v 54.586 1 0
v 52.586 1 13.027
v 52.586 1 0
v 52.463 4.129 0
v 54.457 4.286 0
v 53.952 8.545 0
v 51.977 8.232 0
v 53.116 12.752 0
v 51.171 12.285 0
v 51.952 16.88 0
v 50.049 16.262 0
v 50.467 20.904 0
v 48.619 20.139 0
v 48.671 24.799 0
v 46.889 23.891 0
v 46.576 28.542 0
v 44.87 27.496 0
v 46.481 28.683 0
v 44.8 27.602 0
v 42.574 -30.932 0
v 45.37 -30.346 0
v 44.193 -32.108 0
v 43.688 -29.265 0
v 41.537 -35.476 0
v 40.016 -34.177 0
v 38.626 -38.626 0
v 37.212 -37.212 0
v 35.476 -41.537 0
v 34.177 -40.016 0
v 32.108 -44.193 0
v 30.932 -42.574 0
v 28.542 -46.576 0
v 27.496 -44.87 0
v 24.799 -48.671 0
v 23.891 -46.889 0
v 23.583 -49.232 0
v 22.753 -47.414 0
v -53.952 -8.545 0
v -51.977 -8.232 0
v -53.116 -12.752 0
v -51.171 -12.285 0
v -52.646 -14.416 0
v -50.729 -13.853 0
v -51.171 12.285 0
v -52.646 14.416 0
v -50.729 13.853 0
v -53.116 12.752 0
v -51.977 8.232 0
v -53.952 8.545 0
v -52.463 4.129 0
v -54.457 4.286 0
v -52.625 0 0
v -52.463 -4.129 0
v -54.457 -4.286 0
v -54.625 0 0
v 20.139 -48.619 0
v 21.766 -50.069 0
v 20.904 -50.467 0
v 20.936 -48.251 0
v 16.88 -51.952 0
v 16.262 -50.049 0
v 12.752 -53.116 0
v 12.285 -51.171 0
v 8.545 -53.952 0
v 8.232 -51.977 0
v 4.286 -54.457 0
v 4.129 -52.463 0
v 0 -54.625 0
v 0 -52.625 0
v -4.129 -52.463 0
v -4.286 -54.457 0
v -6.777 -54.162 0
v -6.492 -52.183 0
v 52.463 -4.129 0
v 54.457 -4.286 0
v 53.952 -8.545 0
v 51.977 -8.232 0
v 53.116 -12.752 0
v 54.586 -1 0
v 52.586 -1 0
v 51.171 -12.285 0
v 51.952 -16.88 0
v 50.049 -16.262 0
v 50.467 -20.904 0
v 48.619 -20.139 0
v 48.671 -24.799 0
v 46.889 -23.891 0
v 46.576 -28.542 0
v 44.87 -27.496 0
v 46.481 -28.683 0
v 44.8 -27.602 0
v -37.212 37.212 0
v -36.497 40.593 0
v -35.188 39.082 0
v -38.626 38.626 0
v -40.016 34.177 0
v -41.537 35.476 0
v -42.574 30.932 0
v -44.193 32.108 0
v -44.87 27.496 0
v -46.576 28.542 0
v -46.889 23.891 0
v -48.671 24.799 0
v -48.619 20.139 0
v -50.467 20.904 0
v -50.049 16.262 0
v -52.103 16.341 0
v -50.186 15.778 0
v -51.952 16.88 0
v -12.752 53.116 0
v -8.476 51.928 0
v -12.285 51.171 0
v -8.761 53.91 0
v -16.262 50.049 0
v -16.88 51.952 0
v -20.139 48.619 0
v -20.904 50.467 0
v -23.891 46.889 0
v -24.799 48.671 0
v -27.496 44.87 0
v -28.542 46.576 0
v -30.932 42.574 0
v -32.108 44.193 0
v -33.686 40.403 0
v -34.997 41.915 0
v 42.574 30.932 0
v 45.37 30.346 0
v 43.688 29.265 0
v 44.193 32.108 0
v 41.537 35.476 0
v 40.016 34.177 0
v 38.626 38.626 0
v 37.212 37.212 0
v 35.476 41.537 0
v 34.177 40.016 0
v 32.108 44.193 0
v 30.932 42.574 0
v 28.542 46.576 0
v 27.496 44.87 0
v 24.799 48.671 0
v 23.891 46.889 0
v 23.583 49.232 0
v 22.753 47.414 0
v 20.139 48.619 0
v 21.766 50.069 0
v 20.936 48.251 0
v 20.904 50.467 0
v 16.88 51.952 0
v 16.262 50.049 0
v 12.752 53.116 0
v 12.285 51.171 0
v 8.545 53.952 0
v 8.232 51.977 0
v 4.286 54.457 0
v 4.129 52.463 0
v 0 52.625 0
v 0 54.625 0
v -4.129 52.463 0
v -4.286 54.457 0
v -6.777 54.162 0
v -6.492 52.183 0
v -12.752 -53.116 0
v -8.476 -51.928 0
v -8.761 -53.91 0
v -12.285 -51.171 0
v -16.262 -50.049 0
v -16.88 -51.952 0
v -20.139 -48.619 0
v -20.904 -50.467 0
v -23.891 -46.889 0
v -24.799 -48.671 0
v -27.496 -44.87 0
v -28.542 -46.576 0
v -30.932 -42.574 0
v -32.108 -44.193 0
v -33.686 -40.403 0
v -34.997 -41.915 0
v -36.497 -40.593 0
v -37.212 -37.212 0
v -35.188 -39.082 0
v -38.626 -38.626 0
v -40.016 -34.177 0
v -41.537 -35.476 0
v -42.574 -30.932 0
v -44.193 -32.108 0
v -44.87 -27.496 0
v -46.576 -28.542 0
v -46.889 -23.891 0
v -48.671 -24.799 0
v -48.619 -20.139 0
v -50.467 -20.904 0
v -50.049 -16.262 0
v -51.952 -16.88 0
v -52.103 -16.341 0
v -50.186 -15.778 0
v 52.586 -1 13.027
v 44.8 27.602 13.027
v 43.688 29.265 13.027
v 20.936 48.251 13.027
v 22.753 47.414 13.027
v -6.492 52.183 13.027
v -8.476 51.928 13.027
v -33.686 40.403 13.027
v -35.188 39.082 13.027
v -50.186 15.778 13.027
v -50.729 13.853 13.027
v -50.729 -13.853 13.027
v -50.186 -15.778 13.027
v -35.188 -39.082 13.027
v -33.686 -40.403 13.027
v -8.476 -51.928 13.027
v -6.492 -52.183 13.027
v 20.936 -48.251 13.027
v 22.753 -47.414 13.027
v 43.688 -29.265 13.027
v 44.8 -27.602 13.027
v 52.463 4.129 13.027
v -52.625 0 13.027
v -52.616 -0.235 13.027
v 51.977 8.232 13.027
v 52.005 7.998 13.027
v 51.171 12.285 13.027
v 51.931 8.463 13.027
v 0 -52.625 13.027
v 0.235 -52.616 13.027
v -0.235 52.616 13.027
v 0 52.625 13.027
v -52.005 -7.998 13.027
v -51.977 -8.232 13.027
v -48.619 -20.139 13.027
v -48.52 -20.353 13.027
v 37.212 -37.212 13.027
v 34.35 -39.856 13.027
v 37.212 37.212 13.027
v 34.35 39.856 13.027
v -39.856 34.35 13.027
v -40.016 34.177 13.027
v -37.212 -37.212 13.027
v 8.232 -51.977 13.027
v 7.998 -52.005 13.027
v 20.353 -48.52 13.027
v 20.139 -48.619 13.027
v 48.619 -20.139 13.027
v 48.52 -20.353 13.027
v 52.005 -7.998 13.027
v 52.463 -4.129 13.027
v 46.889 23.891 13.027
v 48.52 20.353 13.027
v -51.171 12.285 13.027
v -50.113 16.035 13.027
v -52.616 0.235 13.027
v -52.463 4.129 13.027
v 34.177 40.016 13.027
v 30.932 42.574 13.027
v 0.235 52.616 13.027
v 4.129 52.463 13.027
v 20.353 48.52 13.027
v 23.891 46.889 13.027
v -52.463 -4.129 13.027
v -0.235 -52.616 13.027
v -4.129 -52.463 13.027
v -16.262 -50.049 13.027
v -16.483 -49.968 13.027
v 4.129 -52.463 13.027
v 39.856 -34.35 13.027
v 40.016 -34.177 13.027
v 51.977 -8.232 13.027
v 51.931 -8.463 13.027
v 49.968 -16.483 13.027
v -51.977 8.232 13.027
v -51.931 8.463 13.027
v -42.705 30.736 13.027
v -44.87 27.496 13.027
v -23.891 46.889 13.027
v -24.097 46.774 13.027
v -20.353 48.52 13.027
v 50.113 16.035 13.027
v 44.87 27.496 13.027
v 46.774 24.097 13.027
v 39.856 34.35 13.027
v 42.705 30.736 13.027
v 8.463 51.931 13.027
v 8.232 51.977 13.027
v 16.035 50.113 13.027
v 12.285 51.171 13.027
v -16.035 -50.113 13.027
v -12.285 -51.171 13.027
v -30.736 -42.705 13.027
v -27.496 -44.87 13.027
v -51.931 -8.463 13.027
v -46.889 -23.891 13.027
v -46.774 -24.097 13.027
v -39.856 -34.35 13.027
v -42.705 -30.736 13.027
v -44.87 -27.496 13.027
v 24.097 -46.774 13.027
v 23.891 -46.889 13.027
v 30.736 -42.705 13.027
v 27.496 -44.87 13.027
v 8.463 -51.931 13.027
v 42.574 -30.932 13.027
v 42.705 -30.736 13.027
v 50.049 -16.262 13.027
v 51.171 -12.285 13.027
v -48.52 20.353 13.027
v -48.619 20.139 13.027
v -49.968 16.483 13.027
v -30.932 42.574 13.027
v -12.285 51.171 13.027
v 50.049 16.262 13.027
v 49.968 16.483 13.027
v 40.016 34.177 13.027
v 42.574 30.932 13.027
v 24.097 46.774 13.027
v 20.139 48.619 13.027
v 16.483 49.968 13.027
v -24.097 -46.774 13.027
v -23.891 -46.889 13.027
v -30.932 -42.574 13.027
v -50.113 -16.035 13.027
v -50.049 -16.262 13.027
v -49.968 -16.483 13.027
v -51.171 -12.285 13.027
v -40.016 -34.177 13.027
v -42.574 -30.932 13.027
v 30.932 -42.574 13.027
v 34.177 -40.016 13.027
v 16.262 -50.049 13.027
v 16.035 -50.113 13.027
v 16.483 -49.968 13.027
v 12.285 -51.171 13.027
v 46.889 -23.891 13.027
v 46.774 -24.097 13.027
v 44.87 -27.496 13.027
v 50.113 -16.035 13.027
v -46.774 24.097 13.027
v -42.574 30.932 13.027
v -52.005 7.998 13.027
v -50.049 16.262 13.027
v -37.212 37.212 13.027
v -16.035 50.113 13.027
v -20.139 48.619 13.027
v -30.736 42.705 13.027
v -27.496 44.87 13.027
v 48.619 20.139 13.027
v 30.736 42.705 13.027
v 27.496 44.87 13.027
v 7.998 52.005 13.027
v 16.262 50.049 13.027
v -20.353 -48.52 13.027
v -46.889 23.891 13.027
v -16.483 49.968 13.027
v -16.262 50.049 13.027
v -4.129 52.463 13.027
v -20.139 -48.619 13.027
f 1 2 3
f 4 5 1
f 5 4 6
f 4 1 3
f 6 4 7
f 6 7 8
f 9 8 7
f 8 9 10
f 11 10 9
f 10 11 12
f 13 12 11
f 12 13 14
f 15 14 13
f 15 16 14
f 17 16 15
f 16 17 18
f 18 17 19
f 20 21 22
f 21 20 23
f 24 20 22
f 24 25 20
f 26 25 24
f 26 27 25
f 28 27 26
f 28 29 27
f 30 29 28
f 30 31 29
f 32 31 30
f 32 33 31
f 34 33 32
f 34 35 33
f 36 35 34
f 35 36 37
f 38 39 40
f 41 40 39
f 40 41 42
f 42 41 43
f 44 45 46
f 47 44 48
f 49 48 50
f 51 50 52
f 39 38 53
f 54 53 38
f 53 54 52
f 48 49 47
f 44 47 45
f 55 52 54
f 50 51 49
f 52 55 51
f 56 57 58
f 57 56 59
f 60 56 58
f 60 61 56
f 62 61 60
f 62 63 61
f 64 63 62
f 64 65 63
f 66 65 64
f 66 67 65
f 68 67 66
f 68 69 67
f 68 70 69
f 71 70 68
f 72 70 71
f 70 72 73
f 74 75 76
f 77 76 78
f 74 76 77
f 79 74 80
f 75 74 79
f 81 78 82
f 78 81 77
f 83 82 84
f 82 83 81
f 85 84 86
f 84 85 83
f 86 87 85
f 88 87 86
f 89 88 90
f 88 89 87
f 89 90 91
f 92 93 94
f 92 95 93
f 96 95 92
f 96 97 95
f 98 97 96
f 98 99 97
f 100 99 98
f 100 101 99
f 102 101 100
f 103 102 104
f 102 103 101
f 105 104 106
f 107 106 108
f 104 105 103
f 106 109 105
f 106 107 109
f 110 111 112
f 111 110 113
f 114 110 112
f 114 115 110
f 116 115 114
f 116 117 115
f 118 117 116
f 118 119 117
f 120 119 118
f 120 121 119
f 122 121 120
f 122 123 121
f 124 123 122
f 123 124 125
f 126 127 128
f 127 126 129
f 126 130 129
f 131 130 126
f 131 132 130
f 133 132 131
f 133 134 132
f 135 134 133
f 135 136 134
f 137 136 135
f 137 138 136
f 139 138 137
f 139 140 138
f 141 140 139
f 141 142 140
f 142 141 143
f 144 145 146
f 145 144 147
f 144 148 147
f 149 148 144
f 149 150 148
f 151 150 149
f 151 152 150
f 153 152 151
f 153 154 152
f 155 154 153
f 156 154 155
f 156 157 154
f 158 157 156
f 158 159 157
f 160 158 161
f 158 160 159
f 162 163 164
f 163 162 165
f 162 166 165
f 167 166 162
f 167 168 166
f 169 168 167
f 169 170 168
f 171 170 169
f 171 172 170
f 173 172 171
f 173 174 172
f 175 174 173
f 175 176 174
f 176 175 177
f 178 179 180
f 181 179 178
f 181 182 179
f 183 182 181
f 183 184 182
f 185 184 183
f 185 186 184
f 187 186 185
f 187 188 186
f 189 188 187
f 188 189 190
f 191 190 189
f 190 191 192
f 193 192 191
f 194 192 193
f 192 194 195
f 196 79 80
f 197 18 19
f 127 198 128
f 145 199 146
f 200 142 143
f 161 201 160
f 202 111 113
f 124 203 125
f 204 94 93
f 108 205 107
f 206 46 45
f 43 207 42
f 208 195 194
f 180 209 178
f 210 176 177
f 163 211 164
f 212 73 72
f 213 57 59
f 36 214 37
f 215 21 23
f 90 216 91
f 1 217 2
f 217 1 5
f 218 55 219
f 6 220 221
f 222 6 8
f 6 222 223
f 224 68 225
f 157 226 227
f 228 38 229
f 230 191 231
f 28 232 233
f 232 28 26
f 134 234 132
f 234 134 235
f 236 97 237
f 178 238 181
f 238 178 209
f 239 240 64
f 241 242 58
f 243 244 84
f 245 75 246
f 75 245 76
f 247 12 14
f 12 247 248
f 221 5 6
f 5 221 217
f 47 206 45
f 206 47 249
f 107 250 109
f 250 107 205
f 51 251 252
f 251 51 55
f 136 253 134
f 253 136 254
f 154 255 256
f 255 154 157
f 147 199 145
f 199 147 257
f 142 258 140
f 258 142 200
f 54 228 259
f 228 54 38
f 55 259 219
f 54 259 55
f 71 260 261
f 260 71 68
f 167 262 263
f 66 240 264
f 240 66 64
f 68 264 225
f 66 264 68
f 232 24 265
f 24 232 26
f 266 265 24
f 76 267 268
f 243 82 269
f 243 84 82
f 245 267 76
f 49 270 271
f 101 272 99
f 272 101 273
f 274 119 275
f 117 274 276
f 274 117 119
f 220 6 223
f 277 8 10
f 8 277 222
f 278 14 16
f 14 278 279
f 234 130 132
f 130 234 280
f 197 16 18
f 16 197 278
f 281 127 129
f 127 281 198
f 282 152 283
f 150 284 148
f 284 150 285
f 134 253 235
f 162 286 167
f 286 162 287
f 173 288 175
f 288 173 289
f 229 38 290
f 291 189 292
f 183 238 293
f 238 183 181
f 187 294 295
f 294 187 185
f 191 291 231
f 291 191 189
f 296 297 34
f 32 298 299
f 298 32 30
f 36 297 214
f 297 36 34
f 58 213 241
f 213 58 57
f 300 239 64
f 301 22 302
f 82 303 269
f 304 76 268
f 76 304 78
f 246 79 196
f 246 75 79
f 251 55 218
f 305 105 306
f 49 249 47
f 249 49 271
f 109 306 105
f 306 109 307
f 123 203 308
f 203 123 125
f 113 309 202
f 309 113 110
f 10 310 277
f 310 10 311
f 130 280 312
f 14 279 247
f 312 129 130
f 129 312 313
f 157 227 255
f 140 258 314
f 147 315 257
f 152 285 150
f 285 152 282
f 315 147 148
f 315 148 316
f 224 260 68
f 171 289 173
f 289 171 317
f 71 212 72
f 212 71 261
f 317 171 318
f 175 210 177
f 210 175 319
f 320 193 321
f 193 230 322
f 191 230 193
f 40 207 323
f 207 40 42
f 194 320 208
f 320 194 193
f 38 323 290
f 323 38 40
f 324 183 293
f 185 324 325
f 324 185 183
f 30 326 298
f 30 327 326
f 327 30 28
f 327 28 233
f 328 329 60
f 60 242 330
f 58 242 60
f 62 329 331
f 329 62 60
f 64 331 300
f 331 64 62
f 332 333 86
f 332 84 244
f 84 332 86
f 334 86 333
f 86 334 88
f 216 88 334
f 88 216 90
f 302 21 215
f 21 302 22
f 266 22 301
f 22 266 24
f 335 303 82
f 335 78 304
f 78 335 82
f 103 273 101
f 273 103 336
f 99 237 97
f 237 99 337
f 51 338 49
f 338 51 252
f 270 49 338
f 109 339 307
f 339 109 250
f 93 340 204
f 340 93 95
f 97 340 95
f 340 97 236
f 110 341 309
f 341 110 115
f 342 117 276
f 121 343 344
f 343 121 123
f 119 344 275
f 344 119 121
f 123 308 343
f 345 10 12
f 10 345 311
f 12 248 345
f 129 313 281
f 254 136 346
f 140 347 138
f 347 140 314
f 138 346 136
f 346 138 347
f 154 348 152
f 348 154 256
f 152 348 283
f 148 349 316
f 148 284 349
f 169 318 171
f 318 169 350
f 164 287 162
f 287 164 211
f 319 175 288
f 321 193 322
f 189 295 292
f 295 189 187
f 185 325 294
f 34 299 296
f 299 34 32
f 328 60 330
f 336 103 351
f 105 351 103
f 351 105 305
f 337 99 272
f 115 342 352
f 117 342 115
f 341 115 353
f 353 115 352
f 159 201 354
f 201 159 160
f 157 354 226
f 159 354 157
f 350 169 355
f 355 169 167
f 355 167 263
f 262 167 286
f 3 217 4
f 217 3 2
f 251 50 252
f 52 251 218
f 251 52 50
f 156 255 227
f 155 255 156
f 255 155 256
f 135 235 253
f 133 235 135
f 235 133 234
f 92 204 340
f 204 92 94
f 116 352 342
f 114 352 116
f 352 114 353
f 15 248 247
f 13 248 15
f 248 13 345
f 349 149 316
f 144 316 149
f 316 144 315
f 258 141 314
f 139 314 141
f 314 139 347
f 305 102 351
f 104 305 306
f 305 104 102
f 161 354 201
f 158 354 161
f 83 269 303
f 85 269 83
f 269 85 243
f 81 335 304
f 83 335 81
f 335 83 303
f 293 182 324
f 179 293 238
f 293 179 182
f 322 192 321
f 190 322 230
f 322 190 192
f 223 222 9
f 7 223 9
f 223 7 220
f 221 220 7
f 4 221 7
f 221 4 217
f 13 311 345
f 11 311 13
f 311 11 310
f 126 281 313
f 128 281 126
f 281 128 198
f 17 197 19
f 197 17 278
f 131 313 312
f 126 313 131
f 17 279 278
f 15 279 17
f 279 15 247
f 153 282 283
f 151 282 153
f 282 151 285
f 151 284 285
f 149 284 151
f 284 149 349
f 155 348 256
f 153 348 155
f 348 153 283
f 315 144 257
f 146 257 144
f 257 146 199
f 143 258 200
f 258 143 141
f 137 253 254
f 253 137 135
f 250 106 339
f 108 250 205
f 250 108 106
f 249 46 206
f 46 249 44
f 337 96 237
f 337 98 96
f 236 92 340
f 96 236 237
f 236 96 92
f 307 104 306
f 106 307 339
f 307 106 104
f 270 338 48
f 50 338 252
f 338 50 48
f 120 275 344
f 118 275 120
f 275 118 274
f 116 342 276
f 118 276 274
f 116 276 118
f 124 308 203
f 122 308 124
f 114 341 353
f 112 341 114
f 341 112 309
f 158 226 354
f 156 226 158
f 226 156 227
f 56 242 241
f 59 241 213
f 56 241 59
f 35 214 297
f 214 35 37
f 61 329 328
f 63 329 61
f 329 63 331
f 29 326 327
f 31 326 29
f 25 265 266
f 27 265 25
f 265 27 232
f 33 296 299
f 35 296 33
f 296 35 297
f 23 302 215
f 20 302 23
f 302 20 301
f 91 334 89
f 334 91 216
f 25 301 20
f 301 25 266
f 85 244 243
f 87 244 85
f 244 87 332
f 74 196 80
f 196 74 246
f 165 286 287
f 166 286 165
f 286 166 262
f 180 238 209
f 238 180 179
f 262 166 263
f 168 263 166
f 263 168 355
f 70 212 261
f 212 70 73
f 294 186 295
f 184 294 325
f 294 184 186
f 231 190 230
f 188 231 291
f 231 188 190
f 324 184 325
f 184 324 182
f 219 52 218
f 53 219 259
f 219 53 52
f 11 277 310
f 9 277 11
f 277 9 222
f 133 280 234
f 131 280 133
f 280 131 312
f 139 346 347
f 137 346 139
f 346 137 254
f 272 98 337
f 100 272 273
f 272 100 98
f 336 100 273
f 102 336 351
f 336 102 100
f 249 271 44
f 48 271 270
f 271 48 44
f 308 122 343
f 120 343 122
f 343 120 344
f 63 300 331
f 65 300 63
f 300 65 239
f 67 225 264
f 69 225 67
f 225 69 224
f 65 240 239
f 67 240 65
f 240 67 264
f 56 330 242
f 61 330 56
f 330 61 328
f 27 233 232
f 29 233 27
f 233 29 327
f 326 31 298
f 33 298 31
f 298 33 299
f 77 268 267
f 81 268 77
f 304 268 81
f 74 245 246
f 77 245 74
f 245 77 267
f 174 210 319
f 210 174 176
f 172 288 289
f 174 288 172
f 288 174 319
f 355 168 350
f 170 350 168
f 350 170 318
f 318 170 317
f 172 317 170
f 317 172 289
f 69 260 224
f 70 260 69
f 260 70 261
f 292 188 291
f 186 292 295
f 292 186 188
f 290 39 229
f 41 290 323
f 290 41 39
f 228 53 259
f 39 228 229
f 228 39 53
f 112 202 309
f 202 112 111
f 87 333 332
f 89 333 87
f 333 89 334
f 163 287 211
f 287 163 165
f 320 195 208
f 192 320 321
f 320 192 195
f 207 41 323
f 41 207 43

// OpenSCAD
$fn = 80;

module head_shell(shape, d_out, h_out) {
    if (shape == "cylinder") {
        cylinder(h=h_out, d=d_out);
    }
    else if (shape == "cone") {
        cylinder(h=h_out, d1=d_out, d2=d_out*0.6);
    }
    else if (shape == "dome") {
        union() {
            cylinder(h=h_out*0.7, d=d_out);
            translate([0,0,h_out*0.7])
                sphere(d=d_out);
        }
    }
}

module pattern_slots(d_out,h_out,count,depth,width) {
    for(i=[0:count-1]) {
        rotate([0,0,i*(360/count)])
        translate([d_out/2-depth/2,0,h_out/2])
        cube([depth,width,h_out],center=true);
    }
}

module pattern_holes(d_out,h_out,count,d) {
    for(i=[0:count-1]) {
        rotate([0,0,i*(360/count)])
        translate([d_out/2-2,0,h_out*0.5])
        rotate([0,90,0])
        cylinder(h=6,d=d,center=true);
    }
}

module make_head() {

    difference() {

        head_shell("cone", 109.25, 142.32);

        if("slots"=="slots")
            pattern_slots(109.25,142.32,11,4,2);

        if("slots"=="holes")
            pattern_holes(109.25,142.32,11,3);

        translate([0,0,0])
            cylinder(h=142.32,d=109.25-2*2.0);
    }
}

make_head();
